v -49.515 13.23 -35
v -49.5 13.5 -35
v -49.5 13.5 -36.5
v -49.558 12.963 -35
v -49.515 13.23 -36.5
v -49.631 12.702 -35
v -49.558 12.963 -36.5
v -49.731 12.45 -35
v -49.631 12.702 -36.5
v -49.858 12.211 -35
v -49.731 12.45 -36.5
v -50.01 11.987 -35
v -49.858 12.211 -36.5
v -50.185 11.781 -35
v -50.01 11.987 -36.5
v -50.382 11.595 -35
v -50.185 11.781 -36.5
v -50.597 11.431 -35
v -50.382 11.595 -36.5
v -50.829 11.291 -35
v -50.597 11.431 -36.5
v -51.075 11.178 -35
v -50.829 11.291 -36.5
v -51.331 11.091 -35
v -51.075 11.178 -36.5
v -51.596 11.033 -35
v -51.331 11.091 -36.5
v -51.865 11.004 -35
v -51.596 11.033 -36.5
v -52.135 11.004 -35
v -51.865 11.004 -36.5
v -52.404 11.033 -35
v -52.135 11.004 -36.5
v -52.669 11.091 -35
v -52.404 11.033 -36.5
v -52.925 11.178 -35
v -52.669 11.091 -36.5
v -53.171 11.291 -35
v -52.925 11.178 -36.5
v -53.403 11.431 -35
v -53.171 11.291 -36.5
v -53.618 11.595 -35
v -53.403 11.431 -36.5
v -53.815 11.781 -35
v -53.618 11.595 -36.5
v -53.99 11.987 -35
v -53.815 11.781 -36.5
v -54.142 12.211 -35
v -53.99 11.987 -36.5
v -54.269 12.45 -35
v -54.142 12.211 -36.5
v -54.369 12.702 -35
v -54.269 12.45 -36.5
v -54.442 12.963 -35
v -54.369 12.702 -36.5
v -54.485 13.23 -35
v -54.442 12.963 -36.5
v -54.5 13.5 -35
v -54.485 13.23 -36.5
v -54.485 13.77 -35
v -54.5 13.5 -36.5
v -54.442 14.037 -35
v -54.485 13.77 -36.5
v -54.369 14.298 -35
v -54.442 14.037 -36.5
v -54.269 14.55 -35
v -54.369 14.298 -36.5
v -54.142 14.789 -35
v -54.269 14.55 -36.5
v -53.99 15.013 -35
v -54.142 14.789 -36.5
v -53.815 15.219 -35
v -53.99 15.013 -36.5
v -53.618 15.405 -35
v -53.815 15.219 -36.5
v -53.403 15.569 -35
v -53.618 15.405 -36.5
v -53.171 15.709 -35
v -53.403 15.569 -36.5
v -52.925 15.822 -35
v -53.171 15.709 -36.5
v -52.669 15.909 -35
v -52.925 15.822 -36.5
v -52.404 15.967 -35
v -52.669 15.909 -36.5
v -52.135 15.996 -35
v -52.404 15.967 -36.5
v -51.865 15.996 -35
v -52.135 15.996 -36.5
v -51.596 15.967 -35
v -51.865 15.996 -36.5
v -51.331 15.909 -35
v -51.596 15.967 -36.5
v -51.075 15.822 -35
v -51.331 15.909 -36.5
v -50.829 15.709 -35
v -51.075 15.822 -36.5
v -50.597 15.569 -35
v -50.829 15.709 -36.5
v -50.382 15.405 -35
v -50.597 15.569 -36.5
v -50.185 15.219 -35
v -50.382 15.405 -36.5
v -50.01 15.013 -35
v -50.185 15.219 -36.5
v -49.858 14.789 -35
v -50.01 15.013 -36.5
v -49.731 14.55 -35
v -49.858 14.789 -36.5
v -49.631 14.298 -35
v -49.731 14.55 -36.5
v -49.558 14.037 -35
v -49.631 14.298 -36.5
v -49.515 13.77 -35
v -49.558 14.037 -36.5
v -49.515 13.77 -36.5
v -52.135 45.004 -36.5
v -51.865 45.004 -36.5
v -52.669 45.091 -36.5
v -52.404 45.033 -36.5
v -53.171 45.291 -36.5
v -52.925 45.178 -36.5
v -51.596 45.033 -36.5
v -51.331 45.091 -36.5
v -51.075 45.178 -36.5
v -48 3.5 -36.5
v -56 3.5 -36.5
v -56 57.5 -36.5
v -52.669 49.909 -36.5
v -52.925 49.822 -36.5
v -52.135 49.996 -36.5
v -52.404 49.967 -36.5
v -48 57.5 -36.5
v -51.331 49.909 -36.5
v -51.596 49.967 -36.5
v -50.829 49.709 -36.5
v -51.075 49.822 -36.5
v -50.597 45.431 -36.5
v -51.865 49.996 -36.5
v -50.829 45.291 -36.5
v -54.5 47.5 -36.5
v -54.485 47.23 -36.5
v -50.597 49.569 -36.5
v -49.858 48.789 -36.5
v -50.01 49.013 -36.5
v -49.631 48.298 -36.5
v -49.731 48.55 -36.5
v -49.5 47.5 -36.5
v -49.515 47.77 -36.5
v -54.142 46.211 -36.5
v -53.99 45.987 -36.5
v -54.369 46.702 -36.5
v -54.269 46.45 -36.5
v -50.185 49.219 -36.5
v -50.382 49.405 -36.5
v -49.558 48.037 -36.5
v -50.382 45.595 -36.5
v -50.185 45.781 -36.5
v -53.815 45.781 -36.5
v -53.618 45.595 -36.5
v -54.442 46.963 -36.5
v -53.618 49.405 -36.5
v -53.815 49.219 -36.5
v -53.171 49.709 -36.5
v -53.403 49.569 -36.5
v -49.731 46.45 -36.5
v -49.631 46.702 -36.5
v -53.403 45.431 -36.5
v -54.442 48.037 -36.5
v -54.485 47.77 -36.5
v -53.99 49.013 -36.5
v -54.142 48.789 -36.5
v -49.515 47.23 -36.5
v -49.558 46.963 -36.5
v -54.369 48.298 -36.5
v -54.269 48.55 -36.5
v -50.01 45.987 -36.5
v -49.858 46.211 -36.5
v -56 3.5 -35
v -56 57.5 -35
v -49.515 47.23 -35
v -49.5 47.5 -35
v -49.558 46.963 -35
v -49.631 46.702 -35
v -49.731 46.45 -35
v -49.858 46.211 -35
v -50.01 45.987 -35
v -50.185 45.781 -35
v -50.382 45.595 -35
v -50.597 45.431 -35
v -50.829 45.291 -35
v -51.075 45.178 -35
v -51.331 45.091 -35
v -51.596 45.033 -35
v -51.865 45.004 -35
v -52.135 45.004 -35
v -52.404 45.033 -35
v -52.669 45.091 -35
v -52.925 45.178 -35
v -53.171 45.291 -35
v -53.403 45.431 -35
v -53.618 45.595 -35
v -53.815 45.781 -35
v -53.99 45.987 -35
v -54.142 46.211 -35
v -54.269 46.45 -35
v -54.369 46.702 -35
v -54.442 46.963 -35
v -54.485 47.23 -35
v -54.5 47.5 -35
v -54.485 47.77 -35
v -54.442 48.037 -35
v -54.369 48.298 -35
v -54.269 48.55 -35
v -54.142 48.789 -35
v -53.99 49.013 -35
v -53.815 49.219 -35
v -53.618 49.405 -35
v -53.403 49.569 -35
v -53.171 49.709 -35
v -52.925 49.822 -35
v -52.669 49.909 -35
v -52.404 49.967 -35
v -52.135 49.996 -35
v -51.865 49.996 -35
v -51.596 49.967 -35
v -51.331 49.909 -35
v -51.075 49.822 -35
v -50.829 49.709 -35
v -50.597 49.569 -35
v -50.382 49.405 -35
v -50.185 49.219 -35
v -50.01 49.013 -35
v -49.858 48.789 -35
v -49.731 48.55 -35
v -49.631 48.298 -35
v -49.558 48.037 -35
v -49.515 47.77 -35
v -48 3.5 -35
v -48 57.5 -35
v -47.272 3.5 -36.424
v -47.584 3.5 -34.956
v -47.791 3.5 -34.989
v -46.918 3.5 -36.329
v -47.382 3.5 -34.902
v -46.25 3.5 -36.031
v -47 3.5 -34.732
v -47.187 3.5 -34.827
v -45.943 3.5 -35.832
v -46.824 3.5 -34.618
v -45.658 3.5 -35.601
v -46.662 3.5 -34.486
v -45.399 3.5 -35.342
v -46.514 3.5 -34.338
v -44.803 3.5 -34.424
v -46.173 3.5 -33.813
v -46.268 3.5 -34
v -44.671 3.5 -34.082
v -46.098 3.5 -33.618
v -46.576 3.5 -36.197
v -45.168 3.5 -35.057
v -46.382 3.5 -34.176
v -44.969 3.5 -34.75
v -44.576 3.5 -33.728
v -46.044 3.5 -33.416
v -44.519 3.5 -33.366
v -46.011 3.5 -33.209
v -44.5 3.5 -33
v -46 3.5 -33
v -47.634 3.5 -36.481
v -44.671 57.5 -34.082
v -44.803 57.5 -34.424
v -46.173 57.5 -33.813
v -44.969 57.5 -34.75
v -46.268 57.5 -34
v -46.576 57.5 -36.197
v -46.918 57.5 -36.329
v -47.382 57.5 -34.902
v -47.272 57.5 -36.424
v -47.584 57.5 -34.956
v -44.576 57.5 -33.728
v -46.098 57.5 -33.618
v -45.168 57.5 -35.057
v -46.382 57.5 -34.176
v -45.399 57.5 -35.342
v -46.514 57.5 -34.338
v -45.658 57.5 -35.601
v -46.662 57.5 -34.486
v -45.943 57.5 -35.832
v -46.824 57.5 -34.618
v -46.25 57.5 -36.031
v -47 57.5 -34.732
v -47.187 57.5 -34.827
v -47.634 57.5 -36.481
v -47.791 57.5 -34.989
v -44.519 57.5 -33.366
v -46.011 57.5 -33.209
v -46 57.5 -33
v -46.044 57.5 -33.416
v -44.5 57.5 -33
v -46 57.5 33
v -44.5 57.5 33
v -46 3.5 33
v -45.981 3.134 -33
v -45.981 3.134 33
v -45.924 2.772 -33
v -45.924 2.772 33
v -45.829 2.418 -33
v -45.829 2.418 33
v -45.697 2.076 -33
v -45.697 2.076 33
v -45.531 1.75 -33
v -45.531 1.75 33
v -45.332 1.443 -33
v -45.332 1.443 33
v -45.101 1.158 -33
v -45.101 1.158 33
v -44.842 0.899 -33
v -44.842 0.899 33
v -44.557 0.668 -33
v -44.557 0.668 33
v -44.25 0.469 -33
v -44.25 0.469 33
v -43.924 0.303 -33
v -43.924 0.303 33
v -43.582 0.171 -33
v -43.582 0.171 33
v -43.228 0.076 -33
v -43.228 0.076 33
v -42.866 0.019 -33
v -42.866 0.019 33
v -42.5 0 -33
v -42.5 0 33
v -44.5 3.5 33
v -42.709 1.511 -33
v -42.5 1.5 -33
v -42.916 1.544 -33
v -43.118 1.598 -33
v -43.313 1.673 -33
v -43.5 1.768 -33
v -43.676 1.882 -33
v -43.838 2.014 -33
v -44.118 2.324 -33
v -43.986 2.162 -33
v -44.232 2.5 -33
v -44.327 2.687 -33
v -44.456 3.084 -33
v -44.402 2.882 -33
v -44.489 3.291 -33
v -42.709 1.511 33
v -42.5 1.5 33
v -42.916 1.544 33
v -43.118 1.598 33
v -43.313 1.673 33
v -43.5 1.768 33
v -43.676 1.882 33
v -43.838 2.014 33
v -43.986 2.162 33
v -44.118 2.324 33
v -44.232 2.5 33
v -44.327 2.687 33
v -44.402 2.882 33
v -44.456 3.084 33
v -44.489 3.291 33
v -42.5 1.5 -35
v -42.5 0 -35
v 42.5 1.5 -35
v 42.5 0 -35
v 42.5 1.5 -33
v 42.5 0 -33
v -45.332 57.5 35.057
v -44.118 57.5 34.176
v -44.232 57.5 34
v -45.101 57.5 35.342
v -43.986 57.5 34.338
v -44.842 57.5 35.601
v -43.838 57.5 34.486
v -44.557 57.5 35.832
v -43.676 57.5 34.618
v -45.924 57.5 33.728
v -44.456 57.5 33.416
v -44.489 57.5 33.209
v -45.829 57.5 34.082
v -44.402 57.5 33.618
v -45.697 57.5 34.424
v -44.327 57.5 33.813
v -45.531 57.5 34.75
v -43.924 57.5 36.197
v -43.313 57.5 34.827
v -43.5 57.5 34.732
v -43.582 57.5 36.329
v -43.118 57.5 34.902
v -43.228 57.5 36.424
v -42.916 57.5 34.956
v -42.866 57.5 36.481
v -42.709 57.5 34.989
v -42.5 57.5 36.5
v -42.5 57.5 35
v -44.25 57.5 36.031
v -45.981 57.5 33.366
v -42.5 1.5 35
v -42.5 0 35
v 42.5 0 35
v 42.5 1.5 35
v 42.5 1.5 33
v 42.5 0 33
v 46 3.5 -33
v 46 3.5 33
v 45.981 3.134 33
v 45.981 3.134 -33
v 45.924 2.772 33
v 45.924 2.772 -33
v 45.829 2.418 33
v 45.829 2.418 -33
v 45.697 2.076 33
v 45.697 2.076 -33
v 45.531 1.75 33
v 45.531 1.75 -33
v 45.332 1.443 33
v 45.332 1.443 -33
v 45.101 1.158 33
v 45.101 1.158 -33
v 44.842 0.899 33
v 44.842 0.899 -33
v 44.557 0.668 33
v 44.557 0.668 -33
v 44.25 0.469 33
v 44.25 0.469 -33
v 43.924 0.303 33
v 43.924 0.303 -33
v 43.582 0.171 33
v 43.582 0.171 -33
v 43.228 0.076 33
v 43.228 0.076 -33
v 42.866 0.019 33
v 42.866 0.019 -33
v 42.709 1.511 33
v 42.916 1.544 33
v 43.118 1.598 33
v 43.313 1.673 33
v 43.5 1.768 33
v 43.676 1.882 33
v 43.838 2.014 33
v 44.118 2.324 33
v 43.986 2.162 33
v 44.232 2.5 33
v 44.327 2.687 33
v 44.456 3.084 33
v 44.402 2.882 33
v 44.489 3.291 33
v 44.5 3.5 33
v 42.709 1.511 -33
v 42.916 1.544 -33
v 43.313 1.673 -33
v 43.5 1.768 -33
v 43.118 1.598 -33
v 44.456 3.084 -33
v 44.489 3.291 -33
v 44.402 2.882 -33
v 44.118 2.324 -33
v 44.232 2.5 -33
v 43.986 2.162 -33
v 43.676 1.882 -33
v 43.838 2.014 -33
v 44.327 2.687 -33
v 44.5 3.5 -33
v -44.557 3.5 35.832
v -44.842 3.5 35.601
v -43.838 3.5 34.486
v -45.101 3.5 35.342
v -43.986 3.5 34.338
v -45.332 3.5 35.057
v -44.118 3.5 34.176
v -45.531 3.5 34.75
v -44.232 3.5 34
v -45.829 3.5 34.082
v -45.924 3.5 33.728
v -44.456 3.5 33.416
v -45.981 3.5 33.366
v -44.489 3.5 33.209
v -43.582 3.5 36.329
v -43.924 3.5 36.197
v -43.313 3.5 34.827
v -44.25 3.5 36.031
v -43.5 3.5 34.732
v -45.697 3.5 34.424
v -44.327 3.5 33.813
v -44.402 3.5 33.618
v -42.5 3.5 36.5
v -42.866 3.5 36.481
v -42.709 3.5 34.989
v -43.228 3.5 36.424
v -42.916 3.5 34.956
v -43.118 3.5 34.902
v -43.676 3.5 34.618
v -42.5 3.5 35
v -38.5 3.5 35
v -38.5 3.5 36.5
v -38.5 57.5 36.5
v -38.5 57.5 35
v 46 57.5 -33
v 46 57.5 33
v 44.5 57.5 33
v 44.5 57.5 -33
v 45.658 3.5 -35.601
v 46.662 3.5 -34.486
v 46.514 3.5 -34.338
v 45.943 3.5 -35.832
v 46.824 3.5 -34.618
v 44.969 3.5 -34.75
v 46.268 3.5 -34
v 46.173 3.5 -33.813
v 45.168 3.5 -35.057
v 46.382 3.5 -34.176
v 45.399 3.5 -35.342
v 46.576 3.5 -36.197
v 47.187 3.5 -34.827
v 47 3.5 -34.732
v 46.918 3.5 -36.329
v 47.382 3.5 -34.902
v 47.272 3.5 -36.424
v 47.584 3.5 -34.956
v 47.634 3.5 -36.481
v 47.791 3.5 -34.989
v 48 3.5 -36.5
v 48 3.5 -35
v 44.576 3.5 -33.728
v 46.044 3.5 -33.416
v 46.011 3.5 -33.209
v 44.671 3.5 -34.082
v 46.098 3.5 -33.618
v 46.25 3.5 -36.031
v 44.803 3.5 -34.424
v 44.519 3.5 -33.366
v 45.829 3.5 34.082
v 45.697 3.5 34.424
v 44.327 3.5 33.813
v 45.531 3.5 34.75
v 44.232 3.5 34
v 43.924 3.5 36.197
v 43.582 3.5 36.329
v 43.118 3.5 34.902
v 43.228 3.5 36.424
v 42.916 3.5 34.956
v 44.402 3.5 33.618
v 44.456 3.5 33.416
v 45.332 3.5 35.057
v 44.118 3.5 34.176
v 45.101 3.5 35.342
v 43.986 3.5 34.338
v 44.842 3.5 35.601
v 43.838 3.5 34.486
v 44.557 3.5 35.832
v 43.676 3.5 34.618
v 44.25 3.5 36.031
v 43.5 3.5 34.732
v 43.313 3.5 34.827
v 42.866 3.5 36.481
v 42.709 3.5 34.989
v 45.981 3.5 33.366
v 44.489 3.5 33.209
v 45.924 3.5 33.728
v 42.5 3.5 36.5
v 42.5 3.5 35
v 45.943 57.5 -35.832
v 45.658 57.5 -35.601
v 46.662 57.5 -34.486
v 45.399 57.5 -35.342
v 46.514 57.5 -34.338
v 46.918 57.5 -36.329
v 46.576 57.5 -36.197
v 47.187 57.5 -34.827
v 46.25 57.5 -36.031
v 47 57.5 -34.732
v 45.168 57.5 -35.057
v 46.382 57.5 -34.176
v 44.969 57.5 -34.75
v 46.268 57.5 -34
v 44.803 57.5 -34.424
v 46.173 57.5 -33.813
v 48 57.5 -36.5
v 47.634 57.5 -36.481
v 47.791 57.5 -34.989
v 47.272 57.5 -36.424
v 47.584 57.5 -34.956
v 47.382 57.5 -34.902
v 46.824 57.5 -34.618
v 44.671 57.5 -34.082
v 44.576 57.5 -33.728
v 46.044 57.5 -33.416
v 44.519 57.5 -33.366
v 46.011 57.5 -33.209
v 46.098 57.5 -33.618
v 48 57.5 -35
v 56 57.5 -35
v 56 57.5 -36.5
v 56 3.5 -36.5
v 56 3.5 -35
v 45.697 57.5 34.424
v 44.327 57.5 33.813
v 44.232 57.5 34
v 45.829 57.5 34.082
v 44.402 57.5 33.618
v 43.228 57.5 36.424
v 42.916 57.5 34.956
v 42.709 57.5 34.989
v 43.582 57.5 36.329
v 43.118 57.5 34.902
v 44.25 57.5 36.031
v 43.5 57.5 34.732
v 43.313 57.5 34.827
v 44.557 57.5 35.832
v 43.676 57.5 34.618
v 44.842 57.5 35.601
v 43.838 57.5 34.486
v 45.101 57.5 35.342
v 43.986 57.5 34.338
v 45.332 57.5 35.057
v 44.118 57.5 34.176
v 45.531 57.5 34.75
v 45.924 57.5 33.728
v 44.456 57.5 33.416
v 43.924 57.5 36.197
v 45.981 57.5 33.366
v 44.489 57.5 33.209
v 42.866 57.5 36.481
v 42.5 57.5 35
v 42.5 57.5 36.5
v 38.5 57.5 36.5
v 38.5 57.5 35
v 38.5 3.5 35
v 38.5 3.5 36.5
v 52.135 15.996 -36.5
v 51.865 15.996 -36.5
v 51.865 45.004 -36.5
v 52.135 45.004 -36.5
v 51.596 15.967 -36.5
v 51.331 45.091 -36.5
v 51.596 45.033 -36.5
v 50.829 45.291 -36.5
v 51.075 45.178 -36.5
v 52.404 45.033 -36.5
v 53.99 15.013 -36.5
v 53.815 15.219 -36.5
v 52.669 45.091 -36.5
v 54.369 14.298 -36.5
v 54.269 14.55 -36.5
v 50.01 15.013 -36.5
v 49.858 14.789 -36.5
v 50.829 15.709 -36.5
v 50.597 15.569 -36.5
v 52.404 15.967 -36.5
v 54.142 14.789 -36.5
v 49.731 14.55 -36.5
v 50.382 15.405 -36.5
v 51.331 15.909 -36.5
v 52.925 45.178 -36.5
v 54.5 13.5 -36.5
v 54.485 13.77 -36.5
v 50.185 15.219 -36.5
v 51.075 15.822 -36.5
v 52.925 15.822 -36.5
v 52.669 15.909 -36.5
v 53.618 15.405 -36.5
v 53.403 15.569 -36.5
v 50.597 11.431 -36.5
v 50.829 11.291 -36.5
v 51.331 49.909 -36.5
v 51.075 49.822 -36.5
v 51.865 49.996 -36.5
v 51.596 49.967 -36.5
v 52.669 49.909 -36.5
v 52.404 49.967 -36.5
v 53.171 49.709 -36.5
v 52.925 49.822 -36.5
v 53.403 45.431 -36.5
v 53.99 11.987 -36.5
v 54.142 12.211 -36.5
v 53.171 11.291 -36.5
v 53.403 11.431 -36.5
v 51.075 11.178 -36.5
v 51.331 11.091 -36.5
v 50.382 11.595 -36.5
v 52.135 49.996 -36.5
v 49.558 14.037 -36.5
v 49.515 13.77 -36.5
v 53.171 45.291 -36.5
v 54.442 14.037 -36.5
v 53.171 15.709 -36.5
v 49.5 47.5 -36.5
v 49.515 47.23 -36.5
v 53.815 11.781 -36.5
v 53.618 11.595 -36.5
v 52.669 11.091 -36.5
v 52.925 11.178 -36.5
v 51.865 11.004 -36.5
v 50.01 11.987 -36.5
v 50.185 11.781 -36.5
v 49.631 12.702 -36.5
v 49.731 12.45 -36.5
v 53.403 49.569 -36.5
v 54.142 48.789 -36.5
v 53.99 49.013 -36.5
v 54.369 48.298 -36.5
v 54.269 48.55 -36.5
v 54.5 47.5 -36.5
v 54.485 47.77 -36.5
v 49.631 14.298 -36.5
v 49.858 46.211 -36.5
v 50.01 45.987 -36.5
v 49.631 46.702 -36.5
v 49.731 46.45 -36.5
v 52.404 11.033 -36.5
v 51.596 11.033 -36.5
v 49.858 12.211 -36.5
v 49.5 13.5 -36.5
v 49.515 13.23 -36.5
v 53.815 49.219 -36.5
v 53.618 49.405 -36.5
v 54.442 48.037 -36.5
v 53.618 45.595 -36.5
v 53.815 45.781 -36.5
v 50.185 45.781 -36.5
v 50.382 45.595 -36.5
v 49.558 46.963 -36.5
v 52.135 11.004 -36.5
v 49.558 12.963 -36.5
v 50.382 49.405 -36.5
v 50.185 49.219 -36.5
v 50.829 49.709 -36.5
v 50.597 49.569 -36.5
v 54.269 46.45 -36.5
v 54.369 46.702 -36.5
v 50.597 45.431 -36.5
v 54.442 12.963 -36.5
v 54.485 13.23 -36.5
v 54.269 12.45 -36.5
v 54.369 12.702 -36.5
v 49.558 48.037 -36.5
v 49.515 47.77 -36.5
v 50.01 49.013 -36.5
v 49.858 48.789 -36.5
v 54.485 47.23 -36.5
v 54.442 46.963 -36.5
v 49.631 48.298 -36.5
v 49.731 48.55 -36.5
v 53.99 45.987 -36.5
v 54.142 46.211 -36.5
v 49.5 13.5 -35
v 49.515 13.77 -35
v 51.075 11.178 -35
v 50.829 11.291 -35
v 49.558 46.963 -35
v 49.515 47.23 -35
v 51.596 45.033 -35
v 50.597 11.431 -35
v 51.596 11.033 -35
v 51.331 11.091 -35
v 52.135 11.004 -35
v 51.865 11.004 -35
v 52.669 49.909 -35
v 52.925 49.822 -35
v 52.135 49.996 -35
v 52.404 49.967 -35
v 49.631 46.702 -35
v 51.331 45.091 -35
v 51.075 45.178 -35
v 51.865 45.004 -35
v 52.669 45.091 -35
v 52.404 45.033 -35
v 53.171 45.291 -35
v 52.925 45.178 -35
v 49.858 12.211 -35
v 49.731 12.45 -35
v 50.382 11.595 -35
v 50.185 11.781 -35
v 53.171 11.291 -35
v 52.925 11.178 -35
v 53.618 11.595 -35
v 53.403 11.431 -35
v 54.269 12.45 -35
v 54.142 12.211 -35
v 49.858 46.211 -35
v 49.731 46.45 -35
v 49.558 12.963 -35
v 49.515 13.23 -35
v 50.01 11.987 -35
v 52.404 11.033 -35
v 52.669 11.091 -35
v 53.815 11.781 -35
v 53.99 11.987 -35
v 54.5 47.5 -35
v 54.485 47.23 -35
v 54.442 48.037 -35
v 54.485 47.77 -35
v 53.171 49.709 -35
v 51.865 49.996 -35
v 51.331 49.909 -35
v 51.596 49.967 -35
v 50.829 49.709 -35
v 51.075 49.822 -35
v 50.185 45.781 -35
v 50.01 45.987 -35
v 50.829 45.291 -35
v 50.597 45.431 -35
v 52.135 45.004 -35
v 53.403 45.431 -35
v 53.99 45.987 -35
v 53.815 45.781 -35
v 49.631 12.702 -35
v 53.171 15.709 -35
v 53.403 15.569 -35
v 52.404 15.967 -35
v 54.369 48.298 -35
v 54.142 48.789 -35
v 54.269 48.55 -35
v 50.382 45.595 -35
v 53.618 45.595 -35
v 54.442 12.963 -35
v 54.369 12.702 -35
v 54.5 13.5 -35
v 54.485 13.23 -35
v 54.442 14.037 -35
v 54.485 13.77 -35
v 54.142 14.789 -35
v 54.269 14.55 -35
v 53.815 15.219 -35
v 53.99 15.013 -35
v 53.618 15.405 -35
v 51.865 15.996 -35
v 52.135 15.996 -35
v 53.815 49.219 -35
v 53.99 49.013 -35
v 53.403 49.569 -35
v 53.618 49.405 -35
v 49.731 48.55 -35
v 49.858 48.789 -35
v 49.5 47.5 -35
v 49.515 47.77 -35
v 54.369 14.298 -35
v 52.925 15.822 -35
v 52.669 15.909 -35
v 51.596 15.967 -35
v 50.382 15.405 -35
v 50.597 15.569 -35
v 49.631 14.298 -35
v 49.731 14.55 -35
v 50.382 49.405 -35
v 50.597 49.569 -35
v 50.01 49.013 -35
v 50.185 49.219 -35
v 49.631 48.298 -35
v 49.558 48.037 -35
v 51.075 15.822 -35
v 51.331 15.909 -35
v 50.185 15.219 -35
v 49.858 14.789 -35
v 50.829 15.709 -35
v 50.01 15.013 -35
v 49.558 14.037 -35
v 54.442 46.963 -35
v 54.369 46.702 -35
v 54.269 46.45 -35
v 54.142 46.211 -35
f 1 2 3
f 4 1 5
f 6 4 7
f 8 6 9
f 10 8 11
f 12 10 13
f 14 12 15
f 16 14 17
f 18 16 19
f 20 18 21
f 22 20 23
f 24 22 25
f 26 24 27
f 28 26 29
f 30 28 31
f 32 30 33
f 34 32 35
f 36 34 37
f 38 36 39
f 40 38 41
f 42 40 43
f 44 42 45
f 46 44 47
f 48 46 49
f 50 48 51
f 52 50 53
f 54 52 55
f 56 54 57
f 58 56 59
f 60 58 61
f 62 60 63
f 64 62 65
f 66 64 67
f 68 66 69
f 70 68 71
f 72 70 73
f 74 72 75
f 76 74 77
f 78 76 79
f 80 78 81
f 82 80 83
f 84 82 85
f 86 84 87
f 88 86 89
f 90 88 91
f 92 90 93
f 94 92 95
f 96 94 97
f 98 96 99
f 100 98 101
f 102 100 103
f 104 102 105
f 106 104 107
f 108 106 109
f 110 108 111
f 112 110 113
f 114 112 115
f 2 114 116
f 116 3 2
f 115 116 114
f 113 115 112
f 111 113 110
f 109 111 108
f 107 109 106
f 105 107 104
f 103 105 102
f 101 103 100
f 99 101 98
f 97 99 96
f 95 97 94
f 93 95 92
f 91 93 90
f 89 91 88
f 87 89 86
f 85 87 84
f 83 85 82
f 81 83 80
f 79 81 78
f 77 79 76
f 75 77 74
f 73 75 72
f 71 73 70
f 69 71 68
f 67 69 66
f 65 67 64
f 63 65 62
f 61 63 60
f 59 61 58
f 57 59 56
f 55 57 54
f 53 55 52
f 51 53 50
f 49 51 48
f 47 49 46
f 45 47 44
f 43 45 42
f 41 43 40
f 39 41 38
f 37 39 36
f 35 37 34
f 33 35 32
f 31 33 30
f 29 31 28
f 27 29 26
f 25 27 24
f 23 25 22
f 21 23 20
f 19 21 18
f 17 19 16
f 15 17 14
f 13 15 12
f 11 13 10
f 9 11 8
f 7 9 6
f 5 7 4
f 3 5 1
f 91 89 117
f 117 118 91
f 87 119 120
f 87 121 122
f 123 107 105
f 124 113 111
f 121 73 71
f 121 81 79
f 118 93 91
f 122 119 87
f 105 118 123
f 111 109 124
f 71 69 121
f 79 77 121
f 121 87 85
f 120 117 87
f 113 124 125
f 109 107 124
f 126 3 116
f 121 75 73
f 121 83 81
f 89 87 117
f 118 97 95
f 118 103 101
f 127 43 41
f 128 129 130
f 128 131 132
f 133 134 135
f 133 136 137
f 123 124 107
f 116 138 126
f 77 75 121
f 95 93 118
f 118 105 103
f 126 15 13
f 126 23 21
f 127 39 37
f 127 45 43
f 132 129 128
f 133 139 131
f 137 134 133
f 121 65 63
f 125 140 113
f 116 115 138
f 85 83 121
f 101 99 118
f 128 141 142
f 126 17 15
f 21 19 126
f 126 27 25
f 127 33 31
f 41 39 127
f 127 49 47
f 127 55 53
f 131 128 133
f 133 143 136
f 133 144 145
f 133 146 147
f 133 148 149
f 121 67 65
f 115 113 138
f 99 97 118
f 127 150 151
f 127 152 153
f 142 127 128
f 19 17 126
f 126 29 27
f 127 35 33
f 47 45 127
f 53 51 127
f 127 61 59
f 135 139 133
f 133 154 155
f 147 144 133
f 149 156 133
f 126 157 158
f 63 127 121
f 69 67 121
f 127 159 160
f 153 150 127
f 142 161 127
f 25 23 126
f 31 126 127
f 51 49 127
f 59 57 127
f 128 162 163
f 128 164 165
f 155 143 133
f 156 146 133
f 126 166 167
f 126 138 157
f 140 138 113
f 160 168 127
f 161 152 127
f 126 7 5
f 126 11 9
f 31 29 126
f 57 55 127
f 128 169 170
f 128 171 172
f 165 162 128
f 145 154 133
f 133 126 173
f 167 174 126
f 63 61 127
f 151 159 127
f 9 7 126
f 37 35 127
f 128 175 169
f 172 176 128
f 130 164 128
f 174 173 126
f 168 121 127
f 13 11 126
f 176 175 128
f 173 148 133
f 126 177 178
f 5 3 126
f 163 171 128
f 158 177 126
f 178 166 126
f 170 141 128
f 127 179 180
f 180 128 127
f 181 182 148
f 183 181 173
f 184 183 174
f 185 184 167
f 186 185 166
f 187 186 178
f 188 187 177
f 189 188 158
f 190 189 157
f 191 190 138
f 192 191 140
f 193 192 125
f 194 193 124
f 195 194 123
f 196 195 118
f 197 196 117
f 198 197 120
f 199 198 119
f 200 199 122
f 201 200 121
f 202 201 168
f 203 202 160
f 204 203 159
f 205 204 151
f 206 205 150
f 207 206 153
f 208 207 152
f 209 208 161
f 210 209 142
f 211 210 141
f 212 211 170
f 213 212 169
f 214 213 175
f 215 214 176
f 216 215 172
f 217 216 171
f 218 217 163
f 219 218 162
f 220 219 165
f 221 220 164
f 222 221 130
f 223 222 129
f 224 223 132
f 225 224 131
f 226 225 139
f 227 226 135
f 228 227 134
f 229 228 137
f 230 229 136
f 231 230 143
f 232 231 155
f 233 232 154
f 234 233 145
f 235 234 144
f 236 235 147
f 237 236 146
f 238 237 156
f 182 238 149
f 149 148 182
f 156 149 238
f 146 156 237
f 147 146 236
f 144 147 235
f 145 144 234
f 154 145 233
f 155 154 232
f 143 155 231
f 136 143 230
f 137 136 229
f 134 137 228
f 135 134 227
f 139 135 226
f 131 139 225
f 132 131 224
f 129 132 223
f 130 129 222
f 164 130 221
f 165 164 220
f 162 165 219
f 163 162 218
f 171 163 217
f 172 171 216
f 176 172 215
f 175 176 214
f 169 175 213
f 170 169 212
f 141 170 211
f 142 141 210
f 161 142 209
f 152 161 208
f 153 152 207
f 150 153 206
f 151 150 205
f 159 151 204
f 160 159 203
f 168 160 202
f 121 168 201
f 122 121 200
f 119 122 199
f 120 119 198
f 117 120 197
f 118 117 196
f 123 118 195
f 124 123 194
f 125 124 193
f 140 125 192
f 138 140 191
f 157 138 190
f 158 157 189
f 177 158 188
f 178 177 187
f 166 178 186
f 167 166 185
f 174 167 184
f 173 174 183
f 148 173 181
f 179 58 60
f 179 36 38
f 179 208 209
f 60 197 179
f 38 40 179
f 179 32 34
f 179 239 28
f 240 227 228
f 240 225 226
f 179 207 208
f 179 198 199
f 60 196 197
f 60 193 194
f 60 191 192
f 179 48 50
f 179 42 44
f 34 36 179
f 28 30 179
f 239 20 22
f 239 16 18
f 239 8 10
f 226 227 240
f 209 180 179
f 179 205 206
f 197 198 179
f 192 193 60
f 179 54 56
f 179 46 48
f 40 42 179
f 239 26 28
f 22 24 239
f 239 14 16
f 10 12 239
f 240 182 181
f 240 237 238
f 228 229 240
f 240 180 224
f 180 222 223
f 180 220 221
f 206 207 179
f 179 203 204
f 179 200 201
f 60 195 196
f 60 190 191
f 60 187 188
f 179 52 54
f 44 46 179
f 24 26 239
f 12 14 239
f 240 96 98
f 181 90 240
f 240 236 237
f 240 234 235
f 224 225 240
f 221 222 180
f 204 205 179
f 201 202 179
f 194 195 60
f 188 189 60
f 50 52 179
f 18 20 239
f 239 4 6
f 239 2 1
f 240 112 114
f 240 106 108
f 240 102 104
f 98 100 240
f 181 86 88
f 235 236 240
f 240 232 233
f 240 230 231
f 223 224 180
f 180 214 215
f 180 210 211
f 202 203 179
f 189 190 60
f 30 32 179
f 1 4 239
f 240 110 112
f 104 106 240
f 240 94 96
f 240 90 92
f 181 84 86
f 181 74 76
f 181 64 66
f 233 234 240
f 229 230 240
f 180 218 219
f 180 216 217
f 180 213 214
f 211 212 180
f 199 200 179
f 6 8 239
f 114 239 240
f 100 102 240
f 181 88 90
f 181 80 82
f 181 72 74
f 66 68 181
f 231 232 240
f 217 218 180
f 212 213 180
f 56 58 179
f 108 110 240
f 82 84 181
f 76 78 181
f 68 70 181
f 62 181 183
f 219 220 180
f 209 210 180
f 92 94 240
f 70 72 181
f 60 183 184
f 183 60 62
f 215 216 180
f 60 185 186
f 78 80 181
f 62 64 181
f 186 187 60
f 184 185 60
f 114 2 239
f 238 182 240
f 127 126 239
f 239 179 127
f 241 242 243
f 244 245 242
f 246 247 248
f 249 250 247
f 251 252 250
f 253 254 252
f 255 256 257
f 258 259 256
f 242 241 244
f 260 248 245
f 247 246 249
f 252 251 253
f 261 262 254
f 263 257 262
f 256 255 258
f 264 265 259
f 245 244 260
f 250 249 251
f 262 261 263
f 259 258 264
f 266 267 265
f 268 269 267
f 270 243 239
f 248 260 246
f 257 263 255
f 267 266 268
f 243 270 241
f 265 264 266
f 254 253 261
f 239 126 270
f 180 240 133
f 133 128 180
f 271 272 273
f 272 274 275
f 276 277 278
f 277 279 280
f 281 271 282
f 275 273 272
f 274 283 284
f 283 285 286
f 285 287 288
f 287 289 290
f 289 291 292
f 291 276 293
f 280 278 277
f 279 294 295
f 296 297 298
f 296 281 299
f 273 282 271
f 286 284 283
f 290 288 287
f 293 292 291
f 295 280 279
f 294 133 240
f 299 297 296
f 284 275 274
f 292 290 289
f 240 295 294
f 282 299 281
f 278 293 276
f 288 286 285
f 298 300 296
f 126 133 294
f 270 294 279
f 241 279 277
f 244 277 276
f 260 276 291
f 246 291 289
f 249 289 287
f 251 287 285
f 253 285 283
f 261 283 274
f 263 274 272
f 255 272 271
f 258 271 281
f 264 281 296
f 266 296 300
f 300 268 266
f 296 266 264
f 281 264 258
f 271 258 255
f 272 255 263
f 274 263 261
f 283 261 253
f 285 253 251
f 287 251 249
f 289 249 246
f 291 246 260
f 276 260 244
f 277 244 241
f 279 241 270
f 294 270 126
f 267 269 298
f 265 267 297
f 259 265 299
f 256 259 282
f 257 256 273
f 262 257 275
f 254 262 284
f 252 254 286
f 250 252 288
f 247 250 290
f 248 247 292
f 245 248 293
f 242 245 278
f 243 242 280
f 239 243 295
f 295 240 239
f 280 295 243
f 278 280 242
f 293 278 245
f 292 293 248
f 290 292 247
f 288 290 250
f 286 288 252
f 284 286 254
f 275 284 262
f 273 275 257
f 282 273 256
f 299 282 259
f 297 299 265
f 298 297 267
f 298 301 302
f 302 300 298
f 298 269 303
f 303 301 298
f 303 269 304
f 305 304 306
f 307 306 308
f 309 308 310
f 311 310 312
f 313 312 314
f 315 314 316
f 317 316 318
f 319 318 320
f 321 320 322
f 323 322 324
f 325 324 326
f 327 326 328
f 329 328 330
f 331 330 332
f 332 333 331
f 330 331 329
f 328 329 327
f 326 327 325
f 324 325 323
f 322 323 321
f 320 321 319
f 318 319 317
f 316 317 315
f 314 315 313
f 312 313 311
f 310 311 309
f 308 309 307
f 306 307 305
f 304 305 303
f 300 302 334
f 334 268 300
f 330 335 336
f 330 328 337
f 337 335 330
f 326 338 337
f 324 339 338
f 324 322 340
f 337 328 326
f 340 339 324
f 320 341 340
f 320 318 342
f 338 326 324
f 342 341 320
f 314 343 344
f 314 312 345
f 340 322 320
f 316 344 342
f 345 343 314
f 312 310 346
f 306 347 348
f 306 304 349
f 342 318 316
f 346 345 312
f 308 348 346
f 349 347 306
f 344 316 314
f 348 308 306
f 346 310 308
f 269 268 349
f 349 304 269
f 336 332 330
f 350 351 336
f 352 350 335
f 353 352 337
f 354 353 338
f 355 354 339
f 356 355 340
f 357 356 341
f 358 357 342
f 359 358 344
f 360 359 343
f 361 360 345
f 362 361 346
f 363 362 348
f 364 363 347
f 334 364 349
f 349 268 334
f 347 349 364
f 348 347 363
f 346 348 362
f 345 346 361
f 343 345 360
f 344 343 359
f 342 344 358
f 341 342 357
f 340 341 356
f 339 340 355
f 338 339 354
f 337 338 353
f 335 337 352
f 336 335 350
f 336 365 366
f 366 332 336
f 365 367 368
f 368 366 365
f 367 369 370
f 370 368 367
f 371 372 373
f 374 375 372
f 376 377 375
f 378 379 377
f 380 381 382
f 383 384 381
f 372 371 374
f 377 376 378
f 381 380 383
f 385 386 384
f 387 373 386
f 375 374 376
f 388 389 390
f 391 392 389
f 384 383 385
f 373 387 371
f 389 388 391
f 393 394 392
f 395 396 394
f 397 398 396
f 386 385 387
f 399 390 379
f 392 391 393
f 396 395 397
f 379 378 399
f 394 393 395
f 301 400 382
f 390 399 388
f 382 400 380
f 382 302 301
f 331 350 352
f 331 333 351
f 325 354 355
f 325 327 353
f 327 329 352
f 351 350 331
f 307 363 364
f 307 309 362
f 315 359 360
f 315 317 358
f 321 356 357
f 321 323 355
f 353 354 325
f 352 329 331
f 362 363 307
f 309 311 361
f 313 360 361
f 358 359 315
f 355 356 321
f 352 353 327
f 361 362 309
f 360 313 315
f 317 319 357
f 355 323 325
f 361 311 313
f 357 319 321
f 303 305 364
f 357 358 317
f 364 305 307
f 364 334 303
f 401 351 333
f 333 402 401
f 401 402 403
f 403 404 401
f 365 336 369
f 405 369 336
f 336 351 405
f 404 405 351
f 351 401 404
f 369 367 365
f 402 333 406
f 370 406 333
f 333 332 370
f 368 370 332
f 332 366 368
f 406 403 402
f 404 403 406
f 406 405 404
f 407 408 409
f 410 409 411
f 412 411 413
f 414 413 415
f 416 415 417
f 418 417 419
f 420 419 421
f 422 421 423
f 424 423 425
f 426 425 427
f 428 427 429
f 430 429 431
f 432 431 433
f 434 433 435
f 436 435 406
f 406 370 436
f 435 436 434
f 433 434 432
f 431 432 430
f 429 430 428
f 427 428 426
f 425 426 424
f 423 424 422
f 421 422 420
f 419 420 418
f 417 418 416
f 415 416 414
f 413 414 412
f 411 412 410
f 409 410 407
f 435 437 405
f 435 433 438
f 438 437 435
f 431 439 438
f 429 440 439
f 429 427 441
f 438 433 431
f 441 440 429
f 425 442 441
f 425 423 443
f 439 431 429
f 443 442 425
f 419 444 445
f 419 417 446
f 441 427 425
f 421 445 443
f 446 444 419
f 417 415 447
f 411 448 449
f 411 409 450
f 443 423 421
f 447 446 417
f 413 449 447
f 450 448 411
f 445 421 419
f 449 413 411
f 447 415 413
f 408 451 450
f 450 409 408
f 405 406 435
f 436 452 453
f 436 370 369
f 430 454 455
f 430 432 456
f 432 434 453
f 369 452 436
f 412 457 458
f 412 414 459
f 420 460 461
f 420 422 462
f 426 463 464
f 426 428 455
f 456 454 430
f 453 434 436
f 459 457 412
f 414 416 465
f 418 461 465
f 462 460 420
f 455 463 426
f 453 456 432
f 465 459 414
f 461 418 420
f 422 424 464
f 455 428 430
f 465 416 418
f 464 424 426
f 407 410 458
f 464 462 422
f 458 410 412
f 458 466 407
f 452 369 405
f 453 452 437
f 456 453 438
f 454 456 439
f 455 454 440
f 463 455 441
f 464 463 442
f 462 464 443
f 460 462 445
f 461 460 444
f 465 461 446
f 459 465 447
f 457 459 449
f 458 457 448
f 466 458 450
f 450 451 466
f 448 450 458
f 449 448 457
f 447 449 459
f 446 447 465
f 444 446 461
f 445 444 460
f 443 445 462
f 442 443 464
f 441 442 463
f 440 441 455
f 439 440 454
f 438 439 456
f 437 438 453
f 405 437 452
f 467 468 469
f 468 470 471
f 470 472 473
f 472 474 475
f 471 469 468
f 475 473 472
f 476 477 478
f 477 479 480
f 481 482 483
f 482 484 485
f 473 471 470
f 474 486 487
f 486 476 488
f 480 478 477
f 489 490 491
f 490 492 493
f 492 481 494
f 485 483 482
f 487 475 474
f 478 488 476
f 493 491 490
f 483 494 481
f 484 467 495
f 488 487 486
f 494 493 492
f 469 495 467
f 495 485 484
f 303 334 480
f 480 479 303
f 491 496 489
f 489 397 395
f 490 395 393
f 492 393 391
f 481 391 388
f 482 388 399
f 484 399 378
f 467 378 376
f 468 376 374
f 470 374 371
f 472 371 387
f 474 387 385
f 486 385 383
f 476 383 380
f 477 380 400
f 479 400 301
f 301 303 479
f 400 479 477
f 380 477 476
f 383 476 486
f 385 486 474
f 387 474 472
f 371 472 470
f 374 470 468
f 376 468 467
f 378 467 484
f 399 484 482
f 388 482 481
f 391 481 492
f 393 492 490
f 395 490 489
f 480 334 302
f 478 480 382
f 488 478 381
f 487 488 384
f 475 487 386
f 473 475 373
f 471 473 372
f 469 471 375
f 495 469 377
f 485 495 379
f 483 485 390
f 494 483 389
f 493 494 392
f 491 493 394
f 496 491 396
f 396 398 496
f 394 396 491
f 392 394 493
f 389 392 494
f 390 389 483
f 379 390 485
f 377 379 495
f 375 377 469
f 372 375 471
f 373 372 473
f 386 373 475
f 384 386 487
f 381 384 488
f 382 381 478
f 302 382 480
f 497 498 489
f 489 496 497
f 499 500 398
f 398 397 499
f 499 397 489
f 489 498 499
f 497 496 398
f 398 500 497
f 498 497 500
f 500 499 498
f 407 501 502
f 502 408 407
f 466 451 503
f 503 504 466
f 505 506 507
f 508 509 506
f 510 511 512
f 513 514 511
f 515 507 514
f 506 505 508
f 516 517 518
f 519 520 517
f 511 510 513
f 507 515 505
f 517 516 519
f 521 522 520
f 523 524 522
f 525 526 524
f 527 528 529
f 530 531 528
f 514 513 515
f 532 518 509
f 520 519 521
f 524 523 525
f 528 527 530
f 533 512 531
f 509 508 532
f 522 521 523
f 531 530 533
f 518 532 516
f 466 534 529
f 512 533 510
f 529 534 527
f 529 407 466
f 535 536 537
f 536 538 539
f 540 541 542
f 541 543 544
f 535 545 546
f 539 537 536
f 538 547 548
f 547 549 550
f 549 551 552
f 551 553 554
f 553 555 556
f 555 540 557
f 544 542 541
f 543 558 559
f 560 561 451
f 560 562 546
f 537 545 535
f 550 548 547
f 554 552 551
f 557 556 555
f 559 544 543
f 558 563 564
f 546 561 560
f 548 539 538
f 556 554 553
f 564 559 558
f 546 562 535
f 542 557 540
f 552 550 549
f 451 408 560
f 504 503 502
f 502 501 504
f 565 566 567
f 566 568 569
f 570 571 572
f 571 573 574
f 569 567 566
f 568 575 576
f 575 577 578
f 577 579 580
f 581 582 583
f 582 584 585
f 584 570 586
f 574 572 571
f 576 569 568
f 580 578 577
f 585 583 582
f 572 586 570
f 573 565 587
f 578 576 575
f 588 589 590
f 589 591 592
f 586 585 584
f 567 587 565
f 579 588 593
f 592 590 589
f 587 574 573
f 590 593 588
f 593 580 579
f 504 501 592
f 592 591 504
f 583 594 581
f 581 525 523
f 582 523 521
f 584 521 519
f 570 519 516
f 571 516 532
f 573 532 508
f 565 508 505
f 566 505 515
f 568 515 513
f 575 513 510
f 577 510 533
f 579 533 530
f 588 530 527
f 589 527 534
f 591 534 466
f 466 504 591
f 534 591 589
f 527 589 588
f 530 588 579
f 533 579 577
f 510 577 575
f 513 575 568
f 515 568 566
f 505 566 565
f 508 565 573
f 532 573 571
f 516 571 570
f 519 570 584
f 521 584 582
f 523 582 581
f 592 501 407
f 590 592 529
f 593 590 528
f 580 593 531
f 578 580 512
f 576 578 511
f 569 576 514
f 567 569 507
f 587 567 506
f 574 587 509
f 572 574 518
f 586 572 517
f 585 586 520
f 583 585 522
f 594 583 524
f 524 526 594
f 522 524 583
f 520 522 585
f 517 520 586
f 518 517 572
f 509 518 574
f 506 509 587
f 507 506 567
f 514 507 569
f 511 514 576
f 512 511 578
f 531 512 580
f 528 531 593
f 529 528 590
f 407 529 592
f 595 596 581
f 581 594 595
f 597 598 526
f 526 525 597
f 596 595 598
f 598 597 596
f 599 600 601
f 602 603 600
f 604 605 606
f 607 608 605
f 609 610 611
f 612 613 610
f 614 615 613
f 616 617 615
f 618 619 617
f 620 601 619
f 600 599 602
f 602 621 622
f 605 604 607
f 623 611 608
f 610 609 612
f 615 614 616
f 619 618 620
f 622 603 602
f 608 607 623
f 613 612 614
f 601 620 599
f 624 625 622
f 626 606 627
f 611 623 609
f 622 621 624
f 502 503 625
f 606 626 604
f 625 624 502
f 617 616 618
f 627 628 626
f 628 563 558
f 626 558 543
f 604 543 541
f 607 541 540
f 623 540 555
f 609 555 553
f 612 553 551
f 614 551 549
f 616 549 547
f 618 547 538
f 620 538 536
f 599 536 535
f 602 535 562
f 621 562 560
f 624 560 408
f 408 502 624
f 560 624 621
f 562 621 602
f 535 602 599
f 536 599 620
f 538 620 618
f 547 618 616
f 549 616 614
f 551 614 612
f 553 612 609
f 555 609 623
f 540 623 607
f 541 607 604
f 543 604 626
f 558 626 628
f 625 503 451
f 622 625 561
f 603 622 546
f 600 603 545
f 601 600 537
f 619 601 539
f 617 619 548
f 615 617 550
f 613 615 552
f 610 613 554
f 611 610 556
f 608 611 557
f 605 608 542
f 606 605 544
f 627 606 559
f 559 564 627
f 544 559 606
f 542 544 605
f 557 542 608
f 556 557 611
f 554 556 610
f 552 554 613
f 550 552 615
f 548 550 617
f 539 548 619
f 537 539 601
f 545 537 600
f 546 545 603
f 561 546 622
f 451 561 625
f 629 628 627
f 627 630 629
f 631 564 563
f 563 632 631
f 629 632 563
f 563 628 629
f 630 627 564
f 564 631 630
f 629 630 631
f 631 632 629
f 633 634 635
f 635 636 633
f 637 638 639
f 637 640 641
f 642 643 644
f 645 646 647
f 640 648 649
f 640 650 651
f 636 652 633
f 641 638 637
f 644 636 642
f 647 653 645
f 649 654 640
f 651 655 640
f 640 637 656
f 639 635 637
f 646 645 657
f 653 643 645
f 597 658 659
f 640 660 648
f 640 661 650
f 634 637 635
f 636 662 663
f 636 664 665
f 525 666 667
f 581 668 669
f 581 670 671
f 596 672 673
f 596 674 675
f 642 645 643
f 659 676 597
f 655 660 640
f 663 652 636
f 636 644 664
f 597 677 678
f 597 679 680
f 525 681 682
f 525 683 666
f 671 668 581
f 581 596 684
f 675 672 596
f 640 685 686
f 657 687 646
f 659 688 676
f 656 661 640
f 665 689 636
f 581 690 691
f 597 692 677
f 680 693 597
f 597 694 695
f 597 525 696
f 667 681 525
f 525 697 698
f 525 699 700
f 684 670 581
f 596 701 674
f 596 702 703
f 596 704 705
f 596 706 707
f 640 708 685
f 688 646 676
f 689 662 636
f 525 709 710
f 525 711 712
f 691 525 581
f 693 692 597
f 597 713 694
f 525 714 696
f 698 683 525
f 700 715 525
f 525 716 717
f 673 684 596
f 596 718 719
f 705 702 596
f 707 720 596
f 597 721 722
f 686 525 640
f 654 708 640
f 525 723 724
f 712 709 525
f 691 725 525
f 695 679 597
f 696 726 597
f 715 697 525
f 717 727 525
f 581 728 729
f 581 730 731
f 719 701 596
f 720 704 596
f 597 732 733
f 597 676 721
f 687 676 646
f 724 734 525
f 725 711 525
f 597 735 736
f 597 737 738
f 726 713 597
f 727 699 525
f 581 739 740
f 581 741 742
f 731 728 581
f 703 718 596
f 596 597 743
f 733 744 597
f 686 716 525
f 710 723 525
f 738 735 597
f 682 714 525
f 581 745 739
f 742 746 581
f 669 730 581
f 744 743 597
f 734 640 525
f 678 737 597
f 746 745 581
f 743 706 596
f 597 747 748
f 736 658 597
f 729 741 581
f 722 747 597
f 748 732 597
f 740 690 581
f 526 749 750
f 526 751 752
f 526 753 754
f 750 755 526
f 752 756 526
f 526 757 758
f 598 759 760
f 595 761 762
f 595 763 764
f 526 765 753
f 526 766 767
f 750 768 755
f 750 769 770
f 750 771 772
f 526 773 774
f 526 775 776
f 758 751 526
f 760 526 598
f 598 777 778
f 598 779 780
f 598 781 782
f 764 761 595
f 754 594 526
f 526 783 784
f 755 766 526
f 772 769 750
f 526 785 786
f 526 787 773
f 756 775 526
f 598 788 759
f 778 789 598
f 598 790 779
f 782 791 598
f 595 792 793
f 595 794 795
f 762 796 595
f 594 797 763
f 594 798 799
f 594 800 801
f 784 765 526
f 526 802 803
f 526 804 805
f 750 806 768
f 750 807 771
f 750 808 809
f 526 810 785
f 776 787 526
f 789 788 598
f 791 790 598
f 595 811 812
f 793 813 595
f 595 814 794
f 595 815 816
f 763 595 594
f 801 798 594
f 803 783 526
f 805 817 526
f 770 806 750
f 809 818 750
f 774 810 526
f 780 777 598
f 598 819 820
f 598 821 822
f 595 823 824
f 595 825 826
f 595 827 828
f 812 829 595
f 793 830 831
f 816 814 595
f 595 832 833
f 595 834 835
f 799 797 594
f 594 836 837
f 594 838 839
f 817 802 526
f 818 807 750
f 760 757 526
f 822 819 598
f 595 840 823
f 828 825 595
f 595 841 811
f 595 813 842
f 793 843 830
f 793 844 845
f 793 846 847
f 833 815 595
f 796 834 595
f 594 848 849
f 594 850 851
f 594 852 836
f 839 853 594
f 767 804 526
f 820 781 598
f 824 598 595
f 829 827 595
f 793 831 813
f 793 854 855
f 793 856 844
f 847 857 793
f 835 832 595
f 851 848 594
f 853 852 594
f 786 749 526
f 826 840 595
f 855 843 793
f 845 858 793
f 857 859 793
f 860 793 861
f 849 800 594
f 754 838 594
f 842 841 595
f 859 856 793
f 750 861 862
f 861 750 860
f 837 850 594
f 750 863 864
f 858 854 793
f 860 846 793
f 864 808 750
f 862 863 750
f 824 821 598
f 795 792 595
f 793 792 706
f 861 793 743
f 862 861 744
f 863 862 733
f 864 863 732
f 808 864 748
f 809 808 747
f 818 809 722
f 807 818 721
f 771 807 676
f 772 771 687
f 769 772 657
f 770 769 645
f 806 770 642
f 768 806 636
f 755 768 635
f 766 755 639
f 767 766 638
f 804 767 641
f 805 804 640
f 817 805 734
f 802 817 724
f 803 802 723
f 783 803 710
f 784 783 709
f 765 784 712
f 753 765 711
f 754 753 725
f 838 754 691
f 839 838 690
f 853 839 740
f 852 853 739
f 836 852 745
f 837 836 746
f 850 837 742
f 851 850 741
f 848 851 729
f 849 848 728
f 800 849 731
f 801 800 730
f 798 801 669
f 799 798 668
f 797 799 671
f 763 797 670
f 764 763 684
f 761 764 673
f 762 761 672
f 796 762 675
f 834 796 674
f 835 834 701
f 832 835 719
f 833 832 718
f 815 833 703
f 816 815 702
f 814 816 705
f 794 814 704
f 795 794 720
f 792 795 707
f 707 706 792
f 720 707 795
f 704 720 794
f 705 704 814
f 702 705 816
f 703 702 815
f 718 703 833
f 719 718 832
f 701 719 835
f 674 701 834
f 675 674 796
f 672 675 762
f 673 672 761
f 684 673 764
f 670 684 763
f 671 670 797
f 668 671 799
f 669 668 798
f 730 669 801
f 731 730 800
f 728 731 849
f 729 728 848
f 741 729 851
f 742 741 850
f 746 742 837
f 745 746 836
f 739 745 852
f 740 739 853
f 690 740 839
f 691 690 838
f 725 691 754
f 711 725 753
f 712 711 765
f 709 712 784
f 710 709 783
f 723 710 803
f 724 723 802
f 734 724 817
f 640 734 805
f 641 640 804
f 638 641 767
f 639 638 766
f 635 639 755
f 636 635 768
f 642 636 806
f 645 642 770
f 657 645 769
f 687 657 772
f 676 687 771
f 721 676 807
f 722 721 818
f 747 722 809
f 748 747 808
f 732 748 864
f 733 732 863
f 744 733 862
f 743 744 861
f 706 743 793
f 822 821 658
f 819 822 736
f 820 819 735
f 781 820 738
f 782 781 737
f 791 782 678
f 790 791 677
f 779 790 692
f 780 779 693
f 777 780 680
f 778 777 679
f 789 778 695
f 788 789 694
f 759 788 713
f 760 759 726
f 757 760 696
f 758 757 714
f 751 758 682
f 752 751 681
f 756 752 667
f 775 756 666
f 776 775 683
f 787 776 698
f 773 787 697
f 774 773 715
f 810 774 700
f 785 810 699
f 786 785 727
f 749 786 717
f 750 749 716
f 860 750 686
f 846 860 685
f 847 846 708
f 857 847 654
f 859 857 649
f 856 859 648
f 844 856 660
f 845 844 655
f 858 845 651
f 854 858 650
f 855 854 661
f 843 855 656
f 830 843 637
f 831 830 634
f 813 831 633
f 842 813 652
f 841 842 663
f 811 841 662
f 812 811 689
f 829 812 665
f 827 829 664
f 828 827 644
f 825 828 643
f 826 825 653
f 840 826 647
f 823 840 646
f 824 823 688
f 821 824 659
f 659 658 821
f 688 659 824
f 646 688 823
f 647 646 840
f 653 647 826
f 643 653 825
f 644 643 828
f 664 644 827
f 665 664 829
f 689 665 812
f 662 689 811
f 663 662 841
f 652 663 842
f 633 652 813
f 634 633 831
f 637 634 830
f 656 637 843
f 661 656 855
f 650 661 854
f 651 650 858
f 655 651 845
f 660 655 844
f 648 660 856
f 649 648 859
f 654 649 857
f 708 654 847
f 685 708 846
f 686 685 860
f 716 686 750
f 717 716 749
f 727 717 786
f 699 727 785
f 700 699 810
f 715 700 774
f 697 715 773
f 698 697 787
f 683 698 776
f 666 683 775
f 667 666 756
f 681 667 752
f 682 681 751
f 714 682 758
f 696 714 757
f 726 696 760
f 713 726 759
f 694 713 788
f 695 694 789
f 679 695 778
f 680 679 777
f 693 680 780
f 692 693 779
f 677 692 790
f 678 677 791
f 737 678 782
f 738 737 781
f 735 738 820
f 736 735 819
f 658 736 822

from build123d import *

# Parameters (mm, degrees)
SKETCH1_W                    = 89
SKETCH1_H                    = 70
BASE_FLANGE1_DEPTH           = 1.5
EDGE_FLANGE1_STRIP_W         = 10
EDGE_FLANGE1_STRIP_H         = 1.5
EDGE_FLANGE1_STRIP_CUT_DEPTH = 70
EDGE_FLANGE1_DEPTH           = 70
EDGE_FLANGE2_DEPTH           = 57.5
EDGE_FLANGE2_2_DEPTH         = 3.5
EDGE_FLANGE2_START           = 3.5
EDGE_FLANGE2_3_DEPTH         = 54
EDGE_FLANGE3_DEPTH           = 57.5
EDGE_FLANGE3_2_DEPTH         = 3.5
EDGE_FLANGE3_START           = 3.5
EDGE_FLANGE3_3_DEPTH         = 54
SKETCH16_R                   = 2.5
CUT_EXTRUDE1_DEPTH           = 10


# Read off the part's stored shape, not the designer's step: Edge-Flange2, Edge-Flange3
# Sheet-metal steps are written as plain solids
with BuildPart() as part:
    # Sketch1 → Base-Flange1 (new body)
    with BuildSketch(Plane(origin=(0, 0, 0), x_dir=(1, 0, 0), z_dir=(0, 1, 0))):
        Rectangle(SKETCH1_W, SKETCH1_H)
    extrude(amount=BASE_FLANGE1_DEPTH)

    # Edge-Flange1 strip (across the edge) → Edge-Flange1 strip cut (cut)
    with BuildSketch(Plane(origin=(-44.5, 1.5, -35), x_dir=(1, 0, 0), z_dir=(0, 0, 1))):
        with Locations((-3, -0.75)):
            Rectangle(EDGE_FLANGE1_STRIP_W, EDGE_FLANGE1_STRIP_H)
    edge_flange1_strip_cut = extrude(amount=EDGE_FLANGE1_STRIP_CUT_DEPTH, mode=Mode.SUBTRACT)

    # Edge-Flange1 section (across the edge) → Edge-Flange1 (add)
    with BuildSketch(Plane(origin=(-44.5, 1.5, -35), x_dir=(1, 0, 0), z_dir=(0, 0, 1))):
        with BuildLine():
            Line((-1.5, 2), (-1.5, 56))
            Line((-1.5, 56), (0, 56))
            Line((0, 56), (0, 2))
            ThreePointArc((0, 2), (0.585786438, 0.585786438), (2, 0))
            Line((2, 0), (2, -1.5))
            ThreePointArc((2, -1.5), (-0.474873734, -0.474873734), (-1.5, 2))
        make_face()
    edge_flange1 = extrude(amount=EDGE_FLANGE1_DEPTH)

    # Mirror1: Edge-Flange1 strip cut, Edge-Flange1 across plane
    add(edge_flange1_strip_cut.mirror(Plane(origin=(0, 0, 0), x_dir=(0, 0, 1), z_dir=(1, 0, 0))), mode=Mode.SUBTRACT)
    add(edge_flange1.mirror(Plane(origin=(0, 0, 0), x_dir=(0, 0, 1), z_dir=(1, 0, 0))))

    # Edge-Flange2 outline → Edge-Flange2 (cut)
    with BuildSketch(Plane(origin=(0, 0, 0), x_dir=(1, 0, 0), z_dir=(0, 1, 0))):
        with BuildLine():
            Line((45.127718677, 35), (42.5, 35))
            Line((42.5, 35), (42.5, 33))
            Line((42.5, 33), (44.5, 33))
            ThreePointArc((44.5, 33), (44.66061498, 34.048097173), (45.127718677, 35))
        make_face()
    edge_flange2 = extrude(amount=EDGE_FLANGE2_DEPTH, mode=Mode.SUBTRACT)

    # Edge-Flange2 2 outline → Edge-Flange2 2 (cut)
    with BuildSketch(Plane(origin=(0, 0, 0), x_dir=(1, 0, 0), z_dir=(0, 1, 0))):
        with BuildLine():
            ThreePointArc((45.127718677, 35), (44.66061498, 34.048097173), (44.5, 33))
            Line((44.5, 33), (46, 33))
            ThreePointArc((46, 33), (46.585786438, 34.414213562), (48, 35))
            Line((48, 35), (56, 35))
            Line((56, 35), (56, 36.5))
            Line((56, 36.5), (48, 36.5))
            ThreePointArc((48, 36.5), (46.379814826, 36.102418411), (45.127718677, 35))
        make_face()
    edge_flange2_2 = extrude(amount=EDGE_FLANGE2_2_DEPTH, mode=Mode.SUBTRACT)

    # Edge-Flange2 3 outline → Edge-Flange2 3 (add)
    with BuildSketch(Plane(origin=(0, 0, 0), x_dir=(1, 0, 0), z_dir=(0, 1, 0)).offset(EDGE_FLANGE2_START)):
        with BuildLine():
            ThreePointArc((45.127718677, 35), (44.66061498, 34.048097173), (44.5, 33))
            Line((44.5, 33), (46, 33))
            ThreePointArc((46, 33), (46.585786438, 34.414213562), (48, 35))
            Line((48, 35), (56, 35))
            Line((56, 35), (56, 36.5))
            Line((56, 36.5), (48, 36.5))
            ThreePointArc((48, 36.5), (46.379814826, 36.102418411), (45.127718677, 35))
        make_face()
    edge_flange2_3 = extrude(amount=EDGE_FLANGE2_3_DEPTH)

    # Mirror2: Edge-Flange2, Edge-Flange2 2, Edge-Flange2 3 across plane
    add(edge_flange2.mirror(Plane(origin=(0, 0, 0), x_dir=(0, 0, 1), z_dir=(1, 0, 0))), mode=Mode.SUBTRACT)
    add(edge_flange2_2.mirror(Plane(origin=(0, 0, 0), x_dir=(0, 0, 1), z_dir=(1, 0, 0))), mode=Mode.SUBTRACT)
    add(edge_flange2_3.mirror(Plane(origin=(0, 0, 0), x_dir=(0, 0, 1), z_dir=(1, 0, 0))))

    # Edge-Flange3 outline → Edge-Flange3 (cut)
    with BuildSketch(Plane(origin=(0, 0, 0), x_dir=(1, 0, 0), z_dir=(0, 1, 0))):
        with BuildLine():
            ThreePointArc((-44.5, -33), (-43.914213562, -34.414213562), (-42.5, -35))
            Line((-42.5, -35), (-42.5, -33))
            Line((-42.5, -33), (-44.5, -33))
        make_face()
        with BuildLine():
            ThreePointArc((-45.372281323, -35), (-45.83938502, -34.048097173), (-46, -33))
            Line((-46, -33), (-46, -35))
            Line((-46, -35), (-45.372281323, -35))
        make_face()
    edge_flange3 = extrude(amount=EDGE_FLANGE3_DEPTH, mode=Mode.SUBTRACT)

    # Edge-Flange3 2 outline → Edge-Flange3 2 (cut)
    with BuildSketch(Plane(origin=(0, 0, 0), x_dir=(1, 0, 0), z_dir=(0, 1, 0))):
        with BuildLine():
            ThreePointArc((-42.5, -35), (-43.914213562, -34.414213562), (-44.5, -33))
            Line((-44.5, -33), (-46, -33))
            ThreePointArc((-46, -33), (-45.83938502, -34.048097173), (-45.372281323, -35))
            Line((-45.372281323, -35), (-42.5, -35))
        make_face()
    edge_flange3_2 = extrude(amount=EDGE_FLANGE3_2_DEPTH, mode=Mode.SUBTRACT)

    # Edge-Flange3 3 outline → Edge-Flange3 3 (add)
    with BuildSketch(Plane(origin=(0, 0, 0), x_dir=(1, 0, 0), z_dir=(0, 1, 0)).offset(EDGE_FLANGE3_START)):
        with BuildLine():
            Line((-44.5, -33), (-44.5, -35))
            Line((-44.5, -35), (-45.372281323, -35))
            ThreePointArc((-45.372281323, -35), (-44.120185174, -36.102418411), (-42.5, -36.5))
            Line((-42.5, -36.5), (-38.5, -36.5))
            Line((-38.5, -36.5), (-38.5, -35))
            Line((-38.5, -35), (-42.5, -35))
            ThreePointArc((-42.5, -35), (-43.914213562, -34.414213562), (-44.5, -33))
        make_face()
    edge_flange3_3 = extrude(amount=EDGE_FLANGE3_3_DEPTH)

    # Mirror3: Edge-Flange3, Edge-Flange3 2, Edge-Flange3 3 across plane
    add(edge_flange3.mirror(Plane(origin=(0, 0, 0), x_dir=(0, 0, 1), z_dir=(1, 0, 0))), mode=Mode.SUBTRACT)
    add(edge_flange3_2.mirror(Plane(origin=(0, 0, 0), x_dir=(0, 0, 1), z_dir=(1, 0, 0))), mode=Mode.SUBTRACT)
    add(edge_flange3_3.mirror(Plane(origin=(0, 0, 0), x_dir=(0, 0, 1), z_dir=(1, 0, 0))))

    # Sketch16 → Cut-Extrude1 (cut)
    with BuildSketch(Plane.XY.offset(-35)):
        with Locations((52, 47.5)):
            Circle(SKETCH16_R)
        with Locations((52, 13.5)):
            Circle(SKETCH16_R)
        with Locations((-52, 47.5)):
            Circle(SKETCH16_R)
        with Locations((-52, 13.5)):
            Circle(SKETCH16_R)
    extrude(amount=-CUT_EXTRUDE1_DEPTH, mode=Mode.SUBTRACT)


solid = part.part
